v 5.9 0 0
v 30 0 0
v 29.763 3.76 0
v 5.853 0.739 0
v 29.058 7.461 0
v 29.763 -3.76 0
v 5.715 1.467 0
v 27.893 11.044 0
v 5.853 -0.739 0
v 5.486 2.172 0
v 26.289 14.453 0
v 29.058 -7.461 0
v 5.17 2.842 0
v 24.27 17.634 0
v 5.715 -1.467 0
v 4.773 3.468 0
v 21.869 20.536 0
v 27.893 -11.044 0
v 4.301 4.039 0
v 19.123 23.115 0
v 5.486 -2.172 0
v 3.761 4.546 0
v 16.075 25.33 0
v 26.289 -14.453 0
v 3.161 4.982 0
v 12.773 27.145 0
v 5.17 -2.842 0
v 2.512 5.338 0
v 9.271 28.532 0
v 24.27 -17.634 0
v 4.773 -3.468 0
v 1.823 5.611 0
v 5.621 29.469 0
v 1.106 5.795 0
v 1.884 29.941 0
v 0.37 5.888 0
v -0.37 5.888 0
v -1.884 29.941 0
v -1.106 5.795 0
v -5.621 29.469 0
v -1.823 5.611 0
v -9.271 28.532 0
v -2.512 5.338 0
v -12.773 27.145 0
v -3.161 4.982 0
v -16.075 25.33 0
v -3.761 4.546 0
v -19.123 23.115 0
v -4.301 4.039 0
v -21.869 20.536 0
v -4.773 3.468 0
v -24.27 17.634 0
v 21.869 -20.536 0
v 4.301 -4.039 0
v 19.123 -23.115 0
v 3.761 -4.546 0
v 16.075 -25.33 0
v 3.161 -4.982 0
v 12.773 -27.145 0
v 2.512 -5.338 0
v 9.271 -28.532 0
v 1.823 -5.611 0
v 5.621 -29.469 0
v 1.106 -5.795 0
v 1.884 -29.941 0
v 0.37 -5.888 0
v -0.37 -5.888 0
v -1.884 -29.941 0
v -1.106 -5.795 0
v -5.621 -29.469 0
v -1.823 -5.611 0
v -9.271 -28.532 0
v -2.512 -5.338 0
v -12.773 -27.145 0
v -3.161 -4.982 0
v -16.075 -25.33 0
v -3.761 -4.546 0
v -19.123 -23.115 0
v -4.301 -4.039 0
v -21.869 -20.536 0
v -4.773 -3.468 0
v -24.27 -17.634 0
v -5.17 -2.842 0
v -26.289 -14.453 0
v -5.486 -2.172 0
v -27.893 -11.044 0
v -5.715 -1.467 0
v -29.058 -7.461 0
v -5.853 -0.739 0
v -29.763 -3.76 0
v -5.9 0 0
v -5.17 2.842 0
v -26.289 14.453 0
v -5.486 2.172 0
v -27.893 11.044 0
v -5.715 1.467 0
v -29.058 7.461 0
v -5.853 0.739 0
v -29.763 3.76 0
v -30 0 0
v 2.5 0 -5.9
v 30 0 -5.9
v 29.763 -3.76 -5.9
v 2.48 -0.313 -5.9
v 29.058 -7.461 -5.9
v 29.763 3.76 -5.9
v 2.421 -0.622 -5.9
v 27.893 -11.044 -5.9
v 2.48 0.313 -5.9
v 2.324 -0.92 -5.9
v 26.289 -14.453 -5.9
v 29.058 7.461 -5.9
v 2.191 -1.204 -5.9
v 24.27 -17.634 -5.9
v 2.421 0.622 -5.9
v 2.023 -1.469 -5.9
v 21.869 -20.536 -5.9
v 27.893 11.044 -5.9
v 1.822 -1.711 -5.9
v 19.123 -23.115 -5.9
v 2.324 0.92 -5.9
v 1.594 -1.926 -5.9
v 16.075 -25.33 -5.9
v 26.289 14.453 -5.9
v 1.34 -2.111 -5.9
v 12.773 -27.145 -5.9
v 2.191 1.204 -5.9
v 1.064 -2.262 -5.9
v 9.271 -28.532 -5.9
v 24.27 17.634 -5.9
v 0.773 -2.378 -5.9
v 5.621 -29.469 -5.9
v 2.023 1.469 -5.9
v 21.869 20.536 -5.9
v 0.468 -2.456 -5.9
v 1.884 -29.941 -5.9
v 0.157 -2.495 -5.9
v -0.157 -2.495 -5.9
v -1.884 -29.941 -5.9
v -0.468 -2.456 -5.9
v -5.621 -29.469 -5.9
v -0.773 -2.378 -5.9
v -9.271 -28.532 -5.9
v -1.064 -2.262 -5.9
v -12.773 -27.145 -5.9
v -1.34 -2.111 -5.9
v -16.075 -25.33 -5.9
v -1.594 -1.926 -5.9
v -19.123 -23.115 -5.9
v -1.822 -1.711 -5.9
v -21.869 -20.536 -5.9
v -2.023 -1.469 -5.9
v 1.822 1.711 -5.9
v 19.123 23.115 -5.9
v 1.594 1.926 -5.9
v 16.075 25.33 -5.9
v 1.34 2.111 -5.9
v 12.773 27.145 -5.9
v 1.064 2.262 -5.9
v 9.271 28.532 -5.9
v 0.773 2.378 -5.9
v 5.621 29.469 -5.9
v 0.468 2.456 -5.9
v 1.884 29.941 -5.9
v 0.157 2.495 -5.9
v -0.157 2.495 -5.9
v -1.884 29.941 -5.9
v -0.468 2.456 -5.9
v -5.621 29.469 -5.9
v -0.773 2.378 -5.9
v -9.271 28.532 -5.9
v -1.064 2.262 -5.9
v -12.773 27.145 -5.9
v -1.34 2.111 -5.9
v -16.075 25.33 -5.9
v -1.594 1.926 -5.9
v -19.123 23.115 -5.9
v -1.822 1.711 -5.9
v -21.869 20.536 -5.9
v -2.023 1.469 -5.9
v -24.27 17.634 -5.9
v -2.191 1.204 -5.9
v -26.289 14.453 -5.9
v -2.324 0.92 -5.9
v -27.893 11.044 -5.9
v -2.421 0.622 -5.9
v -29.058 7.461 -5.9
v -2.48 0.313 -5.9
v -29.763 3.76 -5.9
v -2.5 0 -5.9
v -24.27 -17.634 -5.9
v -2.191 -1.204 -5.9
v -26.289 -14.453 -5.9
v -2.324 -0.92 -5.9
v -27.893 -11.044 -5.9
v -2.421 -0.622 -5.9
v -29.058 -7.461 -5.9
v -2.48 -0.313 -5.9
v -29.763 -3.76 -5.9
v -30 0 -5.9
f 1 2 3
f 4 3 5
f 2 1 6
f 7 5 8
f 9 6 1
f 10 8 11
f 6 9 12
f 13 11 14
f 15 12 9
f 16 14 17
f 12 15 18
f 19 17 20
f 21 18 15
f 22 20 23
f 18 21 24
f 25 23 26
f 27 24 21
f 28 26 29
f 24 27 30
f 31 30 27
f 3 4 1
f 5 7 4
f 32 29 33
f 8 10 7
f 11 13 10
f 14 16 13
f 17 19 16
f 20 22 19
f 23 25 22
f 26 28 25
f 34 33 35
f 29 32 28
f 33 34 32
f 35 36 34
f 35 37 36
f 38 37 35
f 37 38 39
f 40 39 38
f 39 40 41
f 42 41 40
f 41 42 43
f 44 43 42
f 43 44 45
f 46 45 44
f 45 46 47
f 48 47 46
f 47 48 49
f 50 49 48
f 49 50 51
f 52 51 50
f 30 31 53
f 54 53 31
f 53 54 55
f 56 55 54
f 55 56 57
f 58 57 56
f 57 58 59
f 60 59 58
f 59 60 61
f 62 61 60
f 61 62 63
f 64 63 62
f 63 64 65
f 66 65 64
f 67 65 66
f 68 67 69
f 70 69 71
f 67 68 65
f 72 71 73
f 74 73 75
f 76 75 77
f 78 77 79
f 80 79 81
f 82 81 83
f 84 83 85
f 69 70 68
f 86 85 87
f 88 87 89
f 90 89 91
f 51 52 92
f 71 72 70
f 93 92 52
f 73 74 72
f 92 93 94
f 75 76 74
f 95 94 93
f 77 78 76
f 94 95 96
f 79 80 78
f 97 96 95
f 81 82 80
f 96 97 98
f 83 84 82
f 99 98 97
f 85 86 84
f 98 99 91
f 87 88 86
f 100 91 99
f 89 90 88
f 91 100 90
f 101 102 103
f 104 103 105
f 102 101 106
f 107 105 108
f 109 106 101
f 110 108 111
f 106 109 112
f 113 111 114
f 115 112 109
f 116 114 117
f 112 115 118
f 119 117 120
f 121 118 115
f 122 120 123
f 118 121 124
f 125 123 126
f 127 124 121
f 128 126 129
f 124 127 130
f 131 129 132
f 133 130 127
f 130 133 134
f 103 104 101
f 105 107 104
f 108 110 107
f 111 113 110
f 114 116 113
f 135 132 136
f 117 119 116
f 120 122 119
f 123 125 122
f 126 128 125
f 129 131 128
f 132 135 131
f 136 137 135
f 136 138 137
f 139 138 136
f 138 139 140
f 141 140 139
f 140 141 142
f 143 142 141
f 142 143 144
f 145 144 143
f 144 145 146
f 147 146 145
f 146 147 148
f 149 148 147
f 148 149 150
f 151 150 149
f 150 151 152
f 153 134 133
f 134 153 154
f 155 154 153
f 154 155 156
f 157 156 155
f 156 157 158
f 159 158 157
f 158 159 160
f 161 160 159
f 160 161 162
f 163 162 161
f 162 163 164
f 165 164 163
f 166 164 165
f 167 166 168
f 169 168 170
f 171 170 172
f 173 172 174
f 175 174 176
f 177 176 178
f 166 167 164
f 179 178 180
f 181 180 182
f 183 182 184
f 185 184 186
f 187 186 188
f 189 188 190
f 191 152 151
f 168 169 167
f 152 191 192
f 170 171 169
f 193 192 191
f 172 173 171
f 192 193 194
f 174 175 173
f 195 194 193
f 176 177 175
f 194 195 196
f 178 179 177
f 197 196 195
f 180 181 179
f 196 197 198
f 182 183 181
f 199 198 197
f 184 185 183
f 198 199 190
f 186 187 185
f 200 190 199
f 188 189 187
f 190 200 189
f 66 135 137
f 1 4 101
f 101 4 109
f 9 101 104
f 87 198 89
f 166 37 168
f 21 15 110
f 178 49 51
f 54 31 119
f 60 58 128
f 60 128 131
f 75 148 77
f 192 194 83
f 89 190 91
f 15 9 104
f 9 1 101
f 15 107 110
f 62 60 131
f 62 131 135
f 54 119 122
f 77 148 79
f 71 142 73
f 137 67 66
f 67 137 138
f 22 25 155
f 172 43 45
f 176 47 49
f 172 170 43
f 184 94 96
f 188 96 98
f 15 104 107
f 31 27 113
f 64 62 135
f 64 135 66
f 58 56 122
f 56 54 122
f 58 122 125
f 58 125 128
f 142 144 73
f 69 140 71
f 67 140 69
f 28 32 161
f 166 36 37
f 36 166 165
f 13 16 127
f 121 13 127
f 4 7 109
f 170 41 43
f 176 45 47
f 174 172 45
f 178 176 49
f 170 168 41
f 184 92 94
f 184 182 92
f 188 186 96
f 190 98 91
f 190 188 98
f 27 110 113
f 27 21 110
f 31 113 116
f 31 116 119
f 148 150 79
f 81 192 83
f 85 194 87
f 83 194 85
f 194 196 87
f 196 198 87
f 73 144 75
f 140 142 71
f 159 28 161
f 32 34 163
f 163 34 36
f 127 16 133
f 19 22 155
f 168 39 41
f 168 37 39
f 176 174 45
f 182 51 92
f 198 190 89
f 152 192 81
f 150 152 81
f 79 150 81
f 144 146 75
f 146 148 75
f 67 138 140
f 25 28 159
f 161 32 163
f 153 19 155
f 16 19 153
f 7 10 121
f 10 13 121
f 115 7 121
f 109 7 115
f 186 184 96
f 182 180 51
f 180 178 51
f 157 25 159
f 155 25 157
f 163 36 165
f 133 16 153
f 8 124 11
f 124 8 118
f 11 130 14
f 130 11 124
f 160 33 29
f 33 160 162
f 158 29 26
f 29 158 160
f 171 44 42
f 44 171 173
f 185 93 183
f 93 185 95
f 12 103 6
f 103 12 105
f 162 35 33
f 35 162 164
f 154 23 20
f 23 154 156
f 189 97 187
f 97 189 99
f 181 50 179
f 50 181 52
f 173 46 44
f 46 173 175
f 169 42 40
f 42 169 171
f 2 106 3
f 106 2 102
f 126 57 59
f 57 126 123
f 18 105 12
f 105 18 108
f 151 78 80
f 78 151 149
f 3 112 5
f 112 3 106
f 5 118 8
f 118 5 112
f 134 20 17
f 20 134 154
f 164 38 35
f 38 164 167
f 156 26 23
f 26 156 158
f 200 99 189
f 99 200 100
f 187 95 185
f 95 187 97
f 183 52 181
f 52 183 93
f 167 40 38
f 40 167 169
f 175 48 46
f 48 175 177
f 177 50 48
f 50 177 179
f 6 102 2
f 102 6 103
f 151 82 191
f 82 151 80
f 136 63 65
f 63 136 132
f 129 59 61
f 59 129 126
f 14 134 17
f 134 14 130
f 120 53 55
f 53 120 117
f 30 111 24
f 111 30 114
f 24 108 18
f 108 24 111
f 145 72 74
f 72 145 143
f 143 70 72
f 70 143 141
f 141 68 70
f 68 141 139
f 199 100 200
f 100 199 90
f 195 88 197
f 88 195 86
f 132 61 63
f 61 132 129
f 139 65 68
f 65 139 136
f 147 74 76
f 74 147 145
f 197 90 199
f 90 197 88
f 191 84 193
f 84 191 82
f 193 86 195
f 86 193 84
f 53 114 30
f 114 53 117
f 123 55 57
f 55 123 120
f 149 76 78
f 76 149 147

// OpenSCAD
$fn = 50;


difference() {
	union() {
		translate(v = [0, 0, -5.9000000000]) {
			cylinder(h = 5.9000000000, r = 30.0000000000);
		}
	}
	union() {
		translate(v = [0, 0, 0]) {
			rotate(a = [0, 0, 0]) {
				difference() {
					union() {
						#translate(v = [0, 0, -5.9000000000]) {
							cylinder(h = 5.9000000000, r = 2.2500000000);
						}
						#translate(v = [0, 0, -5.9000000000]) {
							cylinder(h = 5.9000000000, r1 = 2.5000000000, r2 = 5.9000000000);
						}
						#translate(v = [0, 0, -5.9000000000]) {
							cylinder(h = 5.9000000000, r = 2.5000000000);
						}
						#translate(v = [0, 0, -5.9000000000]) {
							cylinder(h = 5.9000000000, r = 2.2500000000);
						}
					}
					union();
				}
			}
		}
	}
}
